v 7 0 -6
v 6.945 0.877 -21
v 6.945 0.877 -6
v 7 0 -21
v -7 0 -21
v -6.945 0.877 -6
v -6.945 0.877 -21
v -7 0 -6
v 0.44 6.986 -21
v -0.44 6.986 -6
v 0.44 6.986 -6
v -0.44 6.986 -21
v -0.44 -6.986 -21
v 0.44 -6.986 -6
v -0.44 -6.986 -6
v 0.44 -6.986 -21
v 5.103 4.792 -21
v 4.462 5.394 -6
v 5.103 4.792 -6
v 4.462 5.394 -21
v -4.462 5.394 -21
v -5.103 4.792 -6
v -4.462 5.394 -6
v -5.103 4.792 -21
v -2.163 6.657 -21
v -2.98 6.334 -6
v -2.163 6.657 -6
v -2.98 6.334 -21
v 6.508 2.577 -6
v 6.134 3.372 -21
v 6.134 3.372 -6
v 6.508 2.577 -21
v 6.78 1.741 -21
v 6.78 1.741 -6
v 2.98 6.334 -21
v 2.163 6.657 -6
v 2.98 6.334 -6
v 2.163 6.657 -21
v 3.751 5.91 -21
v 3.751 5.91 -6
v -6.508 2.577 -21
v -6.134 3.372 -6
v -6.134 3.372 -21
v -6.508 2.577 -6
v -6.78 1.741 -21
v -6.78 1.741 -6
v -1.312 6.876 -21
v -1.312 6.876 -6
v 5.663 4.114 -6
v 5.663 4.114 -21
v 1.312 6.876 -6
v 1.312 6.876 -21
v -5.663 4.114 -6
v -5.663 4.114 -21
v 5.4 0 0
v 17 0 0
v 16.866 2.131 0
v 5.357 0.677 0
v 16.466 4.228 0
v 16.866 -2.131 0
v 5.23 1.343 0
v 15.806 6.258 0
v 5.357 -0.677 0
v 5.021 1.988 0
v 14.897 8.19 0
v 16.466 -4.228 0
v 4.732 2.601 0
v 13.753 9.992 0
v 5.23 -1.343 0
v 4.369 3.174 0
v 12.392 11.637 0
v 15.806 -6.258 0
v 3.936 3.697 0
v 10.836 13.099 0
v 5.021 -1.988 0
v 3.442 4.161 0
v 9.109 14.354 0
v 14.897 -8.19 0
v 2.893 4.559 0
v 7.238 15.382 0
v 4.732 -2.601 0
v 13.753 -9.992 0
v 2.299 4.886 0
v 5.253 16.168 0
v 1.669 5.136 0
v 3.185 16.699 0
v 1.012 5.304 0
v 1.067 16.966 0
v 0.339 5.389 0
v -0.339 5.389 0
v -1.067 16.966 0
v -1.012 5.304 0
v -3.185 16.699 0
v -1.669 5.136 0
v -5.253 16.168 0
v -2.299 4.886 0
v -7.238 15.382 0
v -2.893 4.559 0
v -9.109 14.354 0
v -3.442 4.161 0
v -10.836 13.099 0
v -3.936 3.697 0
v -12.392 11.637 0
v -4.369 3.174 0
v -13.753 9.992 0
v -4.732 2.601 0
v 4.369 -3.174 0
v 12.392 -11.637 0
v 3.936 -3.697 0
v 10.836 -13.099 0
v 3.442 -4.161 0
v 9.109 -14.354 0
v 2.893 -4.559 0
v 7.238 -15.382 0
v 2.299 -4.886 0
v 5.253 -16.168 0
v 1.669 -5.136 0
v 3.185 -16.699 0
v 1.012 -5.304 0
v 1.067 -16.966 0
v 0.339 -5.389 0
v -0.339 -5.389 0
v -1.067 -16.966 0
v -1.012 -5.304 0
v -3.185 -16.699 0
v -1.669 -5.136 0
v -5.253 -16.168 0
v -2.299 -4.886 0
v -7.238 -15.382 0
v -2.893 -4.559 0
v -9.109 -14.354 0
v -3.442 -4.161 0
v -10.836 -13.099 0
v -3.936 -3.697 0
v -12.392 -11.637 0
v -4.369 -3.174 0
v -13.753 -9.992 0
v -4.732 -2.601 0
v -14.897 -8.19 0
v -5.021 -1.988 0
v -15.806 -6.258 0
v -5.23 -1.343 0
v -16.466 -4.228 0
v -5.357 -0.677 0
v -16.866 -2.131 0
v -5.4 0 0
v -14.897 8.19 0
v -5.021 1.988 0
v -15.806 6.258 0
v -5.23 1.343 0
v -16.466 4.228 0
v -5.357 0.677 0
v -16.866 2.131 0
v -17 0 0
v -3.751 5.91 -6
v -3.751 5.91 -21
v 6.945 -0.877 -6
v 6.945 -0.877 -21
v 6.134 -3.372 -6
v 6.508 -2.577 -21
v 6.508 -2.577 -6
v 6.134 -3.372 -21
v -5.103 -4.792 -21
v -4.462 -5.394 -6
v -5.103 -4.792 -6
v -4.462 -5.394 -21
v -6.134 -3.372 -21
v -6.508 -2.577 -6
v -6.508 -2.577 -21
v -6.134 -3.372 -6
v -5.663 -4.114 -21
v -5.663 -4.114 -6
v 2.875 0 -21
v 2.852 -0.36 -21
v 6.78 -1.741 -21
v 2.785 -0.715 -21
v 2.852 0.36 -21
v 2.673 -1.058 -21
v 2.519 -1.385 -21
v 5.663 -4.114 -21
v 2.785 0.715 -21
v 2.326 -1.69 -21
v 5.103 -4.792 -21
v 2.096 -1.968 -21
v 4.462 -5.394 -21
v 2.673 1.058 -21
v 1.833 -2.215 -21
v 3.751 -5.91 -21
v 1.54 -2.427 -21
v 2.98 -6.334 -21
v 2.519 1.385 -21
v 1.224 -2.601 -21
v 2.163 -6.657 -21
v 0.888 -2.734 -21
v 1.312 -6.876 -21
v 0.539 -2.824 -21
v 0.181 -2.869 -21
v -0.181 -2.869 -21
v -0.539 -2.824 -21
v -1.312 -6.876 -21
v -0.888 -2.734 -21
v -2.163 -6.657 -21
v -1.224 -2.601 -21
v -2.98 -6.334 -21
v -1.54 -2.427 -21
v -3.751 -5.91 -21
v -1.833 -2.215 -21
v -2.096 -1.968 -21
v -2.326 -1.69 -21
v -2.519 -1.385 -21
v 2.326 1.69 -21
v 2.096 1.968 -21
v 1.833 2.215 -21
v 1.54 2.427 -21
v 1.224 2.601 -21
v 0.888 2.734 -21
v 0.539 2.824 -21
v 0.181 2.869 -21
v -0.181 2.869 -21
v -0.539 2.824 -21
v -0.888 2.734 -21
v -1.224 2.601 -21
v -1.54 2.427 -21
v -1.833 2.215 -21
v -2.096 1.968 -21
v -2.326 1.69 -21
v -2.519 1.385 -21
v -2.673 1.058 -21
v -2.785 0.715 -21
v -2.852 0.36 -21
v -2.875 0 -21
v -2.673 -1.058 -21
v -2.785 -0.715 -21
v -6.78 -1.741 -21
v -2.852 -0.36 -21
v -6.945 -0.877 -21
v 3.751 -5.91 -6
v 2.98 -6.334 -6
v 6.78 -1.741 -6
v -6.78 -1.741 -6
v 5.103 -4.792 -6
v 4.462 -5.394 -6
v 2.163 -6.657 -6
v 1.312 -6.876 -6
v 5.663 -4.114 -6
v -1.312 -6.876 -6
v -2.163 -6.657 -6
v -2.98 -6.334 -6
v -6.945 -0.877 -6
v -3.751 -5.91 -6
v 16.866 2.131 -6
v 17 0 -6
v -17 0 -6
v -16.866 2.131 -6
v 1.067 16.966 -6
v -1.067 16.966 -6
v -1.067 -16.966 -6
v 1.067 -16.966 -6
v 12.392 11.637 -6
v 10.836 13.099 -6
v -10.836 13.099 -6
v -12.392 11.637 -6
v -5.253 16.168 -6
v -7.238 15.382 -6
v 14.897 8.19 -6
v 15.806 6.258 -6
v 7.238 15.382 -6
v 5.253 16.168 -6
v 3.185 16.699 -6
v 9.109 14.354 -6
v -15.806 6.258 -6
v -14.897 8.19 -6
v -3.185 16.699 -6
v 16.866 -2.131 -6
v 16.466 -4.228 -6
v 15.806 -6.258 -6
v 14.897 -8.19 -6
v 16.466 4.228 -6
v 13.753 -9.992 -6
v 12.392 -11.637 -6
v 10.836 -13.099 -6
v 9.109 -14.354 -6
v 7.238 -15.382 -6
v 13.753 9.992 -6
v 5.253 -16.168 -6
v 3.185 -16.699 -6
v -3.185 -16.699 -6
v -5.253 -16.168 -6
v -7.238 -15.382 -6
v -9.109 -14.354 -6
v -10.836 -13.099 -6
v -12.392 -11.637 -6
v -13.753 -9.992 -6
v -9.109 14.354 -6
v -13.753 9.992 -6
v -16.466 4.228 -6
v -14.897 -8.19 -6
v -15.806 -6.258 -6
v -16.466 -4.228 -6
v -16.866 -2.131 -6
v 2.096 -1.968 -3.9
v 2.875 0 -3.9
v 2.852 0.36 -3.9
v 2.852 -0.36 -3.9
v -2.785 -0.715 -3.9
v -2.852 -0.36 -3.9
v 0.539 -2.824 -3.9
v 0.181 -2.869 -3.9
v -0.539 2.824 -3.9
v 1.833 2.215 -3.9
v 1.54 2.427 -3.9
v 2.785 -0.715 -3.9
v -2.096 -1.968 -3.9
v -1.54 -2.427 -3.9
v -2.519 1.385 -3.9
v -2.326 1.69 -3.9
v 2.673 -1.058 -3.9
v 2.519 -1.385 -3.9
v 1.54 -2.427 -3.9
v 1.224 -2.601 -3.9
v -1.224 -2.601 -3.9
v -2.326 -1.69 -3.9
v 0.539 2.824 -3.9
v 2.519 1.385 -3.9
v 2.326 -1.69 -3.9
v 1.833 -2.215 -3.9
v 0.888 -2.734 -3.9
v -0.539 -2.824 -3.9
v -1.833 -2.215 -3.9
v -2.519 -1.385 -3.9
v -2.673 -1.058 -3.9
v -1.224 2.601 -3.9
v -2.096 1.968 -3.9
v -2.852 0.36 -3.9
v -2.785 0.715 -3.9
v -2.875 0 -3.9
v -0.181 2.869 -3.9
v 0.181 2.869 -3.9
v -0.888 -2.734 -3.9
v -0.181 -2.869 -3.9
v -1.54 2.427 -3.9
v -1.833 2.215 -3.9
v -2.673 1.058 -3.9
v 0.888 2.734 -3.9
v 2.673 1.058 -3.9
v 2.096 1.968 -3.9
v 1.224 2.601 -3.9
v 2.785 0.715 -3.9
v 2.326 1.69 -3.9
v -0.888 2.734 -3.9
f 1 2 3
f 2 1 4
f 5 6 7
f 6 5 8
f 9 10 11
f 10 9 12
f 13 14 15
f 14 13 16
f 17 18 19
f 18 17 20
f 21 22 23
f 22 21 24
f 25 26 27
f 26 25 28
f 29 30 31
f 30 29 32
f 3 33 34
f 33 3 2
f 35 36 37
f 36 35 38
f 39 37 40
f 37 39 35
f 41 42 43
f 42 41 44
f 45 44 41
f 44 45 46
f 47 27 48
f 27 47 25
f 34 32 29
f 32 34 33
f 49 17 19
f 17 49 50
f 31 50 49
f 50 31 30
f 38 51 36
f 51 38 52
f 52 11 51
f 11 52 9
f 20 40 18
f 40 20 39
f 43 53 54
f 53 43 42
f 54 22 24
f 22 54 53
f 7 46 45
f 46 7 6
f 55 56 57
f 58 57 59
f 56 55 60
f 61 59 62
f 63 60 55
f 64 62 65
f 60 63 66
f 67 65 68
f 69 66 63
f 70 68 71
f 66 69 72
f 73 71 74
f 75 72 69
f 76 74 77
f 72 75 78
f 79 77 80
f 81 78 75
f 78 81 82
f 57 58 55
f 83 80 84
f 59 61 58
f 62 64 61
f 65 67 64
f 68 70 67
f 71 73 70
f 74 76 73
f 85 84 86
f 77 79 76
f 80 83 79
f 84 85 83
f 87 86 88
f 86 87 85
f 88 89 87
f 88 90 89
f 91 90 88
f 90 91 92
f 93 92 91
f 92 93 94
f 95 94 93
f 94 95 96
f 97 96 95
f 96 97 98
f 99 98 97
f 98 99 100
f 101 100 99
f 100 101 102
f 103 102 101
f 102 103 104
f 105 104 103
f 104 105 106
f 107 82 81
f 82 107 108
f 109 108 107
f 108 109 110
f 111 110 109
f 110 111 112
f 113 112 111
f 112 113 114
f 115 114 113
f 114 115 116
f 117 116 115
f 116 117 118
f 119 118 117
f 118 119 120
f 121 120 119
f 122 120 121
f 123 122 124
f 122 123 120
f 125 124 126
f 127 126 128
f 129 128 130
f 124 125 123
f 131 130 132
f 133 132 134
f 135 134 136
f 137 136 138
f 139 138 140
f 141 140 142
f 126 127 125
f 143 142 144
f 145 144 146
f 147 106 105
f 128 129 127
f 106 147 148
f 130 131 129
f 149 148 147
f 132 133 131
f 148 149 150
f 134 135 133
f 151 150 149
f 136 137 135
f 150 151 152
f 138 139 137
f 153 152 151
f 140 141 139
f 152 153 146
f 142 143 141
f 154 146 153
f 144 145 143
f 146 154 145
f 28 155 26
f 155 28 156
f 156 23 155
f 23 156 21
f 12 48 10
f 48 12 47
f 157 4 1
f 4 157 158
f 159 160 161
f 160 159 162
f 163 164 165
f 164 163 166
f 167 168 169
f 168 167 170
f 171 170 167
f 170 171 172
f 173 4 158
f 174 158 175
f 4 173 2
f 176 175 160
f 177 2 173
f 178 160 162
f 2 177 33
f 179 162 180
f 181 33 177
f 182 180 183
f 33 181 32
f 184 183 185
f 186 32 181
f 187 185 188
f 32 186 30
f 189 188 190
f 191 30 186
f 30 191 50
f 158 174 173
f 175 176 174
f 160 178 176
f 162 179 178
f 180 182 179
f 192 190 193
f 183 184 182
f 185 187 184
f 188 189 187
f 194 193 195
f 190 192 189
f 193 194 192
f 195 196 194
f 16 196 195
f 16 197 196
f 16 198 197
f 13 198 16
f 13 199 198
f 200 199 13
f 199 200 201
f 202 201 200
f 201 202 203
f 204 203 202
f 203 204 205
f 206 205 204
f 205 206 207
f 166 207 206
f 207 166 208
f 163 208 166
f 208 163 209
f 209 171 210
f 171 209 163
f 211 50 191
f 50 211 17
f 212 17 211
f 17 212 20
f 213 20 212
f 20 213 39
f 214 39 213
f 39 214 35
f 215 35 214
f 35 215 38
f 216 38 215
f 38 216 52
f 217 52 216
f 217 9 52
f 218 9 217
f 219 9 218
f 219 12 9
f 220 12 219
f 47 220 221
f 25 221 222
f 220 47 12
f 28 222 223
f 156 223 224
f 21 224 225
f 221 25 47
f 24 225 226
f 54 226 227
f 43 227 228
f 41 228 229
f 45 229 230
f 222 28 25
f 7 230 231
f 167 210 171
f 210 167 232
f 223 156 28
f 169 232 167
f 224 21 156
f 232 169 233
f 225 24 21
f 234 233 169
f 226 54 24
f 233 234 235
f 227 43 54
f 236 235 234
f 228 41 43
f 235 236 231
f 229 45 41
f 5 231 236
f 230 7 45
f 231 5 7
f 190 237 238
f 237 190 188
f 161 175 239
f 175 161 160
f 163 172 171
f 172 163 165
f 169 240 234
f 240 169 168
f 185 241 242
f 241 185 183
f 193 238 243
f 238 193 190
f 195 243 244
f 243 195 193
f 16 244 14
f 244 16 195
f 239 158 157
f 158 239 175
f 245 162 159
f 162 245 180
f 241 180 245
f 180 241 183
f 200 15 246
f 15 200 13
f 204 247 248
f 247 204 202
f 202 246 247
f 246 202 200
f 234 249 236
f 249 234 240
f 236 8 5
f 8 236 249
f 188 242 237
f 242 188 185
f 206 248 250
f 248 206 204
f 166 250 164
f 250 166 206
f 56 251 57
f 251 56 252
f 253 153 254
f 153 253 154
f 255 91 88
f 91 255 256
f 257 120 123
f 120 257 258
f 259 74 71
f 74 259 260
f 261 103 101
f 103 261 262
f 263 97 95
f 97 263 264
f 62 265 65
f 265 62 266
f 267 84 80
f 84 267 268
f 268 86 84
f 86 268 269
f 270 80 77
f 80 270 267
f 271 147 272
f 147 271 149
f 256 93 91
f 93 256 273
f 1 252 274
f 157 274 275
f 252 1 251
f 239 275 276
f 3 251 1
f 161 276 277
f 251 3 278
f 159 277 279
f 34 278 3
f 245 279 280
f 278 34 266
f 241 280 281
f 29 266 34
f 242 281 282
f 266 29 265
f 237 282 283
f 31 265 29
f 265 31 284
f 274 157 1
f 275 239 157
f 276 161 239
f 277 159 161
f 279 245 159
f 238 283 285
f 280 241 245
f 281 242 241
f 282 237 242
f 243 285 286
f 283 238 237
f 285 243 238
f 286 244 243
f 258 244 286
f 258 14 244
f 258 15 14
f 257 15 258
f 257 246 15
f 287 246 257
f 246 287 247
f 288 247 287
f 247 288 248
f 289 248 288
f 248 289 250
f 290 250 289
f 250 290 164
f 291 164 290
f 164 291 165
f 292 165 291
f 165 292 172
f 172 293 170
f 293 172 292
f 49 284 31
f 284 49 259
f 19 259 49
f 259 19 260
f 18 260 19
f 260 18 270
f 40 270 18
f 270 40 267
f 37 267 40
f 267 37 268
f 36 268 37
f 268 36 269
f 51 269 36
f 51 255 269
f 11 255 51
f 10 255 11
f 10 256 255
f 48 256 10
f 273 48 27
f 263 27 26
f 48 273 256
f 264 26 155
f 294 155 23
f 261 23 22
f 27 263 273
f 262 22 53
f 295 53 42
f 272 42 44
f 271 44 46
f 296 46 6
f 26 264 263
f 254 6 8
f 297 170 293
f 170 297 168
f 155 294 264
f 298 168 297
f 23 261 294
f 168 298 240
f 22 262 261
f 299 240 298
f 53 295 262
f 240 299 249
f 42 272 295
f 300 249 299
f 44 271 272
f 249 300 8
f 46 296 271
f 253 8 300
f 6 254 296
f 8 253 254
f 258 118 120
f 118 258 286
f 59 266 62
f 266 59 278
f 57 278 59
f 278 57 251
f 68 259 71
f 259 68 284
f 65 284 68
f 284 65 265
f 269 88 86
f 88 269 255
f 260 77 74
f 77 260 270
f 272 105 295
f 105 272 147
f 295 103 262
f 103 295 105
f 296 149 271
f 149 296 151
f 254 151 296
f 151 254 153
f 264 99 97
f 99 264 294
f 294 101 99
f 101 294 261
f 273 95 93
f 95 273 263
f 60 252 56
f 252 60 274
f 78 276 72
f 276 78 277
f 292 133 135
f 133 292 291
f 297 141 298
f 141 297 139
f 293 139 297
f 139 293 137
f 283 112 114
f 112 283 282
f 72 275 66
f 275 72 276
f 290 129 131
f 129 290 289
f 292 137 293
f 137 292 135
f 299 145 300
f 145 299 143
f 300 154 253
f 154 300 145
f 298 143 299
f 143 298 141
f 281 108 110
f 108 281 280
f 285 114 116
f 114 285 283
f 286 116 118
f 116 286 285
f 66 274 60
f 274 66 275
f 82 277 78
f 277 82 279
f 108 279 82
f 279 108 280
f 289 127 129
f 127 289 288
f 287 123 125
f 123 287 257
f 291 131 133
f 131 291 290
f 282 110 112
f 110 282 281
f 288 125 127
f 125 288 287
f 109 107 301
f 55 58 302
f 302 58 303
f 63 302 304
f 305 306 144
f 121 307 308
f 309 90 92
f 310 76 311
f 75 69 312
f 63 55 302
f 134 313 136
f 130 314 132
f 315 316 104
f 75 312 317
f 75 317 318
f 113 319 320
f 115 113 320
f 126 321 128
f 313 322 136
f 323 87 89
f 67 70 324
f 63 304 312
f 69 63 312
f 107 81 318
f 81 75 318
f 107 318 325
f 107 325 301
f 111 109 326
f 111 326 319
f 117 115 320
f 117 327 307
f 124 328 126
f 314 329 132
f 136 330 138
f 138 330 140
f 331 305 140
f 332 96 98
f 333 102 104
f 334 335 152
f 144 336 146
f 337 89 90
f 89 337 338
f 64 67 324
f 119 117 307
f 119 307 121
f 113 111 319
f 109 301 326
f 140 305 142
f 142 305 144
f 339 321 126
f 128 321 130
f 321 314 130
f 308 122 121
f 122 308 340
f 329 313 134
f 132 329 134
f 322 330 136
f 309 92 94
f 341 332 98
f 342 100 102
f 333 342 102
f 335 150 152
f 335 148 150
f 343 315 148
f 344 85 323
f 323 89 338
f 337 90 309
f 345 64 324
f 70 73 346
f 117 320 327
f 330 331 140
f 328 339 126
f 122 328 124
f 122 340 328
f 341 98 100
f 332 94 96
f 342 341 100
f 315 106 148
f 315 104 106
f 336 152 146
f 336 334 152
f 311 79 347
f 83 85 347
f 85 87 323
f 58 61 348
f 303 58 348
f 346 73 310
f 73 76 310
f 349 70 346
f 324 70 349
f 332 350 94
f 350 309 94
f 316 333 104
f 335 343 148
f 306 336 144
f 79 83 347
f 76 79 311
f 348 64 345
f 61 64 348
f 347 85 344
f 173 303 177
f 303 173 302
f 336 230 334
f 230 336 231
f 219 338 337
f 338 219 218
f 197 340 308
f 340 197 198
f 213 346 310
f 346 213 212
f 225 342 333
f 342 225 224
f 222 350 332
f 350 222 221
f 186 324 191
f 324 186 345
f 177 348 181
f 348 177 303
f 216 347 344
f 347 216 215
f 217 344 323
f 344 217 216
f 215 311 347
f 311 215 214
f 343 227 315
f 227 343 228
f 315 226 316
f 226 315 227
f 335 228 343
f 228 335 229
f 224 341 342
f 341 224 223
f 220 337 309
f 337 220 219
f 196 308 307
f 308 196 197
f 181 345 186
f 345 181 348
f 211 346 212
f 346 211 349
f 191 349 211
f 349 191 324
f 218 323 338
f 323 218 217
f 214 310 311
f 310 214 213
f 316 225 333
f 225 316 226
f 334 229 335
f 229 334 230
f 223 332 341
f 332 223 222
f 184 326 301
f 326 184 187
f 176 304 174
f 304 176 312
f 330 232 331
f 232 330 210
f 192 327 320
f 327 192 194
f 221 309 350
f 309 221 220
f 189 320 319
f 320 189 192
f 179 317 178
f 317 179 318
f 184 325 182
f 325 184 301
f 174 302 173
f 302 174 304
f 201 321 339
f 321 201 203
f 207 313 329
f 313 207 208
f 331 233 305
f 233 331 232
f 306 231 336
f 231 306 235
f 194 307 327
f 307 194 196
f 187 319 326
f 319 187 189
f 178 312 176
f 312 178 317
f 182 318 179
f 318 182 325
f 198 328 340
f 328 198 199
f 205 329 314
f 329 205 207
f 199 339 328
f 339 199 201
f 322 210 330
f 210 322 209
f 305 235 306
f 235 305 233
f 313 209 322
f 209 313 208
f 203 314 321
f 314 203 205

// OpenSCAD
$fn = 50;


difference() {
	union() {
		translate(v = [0, 0, -21.0000000000]) {
			cylinder(h = 21, r = 7.0000000000);
		}
		translate(v = [0, 0, -6.0000000000]) {
			cylinder(h = 6, r = 17.0000000000);
		}
	}
	union() {
		translate(v = [0, 0, 0]) {
			rotate(a = [0, 0, 0]) {
				difference() {
					union() {
						#translate(v = [0, 0, -21.0000000000]) {
							cylinder(h = 21, r = 2.6000000000);
						}
						#translate(v = [0, 0, -3.9000000000]) {
							cylinder(h = 3.9000000000, r1 = 2.8750000000, r2 = 5.4000000000);
						}
						#translate(v = [0, 0, -21.0000000000]) {
							cylinder(h = 21, r = 2.8750000000);
						}
						#translate(v = [0, 0, -21.0000000000]) {
							cylinder(h = 21, r = 2.6000000000);
						}
					}
					union();
				}
			}
		}
	}
}
